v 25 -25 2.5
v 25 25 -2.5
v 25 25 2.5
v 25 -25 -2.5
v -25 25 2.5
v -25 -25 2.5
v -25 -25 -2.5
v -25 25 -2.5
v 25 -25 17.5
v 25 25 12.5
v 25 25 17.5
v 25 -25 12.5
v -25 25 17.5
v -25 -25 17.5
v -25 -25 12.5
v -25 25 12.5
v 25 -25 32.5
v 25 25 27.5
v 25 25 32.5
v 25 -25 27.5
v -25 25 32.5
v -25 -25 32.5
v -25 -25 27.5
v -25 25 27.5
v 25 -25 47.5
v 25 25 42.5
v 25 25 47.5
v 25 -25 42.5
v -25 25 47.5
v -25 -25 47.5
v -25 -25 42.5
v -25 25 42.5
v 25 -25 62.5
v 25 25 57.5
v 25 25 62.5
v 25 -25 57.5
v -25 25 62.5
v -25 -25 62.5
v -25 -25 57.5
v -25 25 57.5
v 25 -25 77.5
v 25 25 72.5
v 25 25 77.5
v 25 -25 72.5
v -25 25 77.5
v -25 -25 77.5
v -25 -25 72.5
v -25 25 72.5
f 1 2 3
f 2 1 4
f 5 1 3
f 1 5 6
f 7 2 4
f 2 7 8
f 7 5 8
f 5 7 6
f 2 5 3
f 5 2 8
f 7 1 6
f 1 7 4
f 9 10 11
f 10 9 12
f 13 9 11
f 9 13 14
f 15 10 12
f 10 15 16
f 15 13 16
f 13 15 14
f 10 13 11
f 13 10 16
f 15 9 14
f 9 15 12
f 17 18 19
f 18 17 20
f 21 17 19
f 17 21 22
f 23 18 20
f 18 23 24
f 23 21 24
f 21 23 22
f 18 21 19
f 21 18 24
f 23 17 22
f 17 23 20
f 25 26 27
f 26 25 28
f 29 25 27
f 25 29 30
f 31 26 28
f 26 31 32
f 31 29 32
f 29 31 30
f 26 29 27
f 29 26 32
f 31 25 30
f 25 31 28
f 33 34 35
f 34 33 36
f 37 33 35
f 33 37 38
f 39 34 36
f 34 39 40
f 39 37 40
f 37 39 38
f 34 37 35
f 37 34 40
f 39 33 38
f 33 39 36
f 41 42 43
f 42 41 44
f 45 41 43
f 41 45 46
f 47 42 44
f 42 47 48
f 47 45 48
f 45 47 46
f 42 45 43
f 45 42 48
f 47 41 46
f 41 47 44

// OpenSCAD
// Define parameters for the flat square plates
plate_size = 50; // Length and width of the square plate
plate_thickness = 5; // Thickness of each plate
plate_spacing = 10; // Spacing between each plate in the vertical stack

// Function to create a flat square plate
module flat_square_plate() {
    cube([plate_size, plate_size, plate_thickness], center = true);
}

// Assemble the stack of flat square plates
module stacked_plates() {
    for (i = [0:5]) {
        translate([0, 0, i * (plate_thickness + plate_spacing)])
            flat_square_plate();
    }
}

// Render the model
stacked_plates();
